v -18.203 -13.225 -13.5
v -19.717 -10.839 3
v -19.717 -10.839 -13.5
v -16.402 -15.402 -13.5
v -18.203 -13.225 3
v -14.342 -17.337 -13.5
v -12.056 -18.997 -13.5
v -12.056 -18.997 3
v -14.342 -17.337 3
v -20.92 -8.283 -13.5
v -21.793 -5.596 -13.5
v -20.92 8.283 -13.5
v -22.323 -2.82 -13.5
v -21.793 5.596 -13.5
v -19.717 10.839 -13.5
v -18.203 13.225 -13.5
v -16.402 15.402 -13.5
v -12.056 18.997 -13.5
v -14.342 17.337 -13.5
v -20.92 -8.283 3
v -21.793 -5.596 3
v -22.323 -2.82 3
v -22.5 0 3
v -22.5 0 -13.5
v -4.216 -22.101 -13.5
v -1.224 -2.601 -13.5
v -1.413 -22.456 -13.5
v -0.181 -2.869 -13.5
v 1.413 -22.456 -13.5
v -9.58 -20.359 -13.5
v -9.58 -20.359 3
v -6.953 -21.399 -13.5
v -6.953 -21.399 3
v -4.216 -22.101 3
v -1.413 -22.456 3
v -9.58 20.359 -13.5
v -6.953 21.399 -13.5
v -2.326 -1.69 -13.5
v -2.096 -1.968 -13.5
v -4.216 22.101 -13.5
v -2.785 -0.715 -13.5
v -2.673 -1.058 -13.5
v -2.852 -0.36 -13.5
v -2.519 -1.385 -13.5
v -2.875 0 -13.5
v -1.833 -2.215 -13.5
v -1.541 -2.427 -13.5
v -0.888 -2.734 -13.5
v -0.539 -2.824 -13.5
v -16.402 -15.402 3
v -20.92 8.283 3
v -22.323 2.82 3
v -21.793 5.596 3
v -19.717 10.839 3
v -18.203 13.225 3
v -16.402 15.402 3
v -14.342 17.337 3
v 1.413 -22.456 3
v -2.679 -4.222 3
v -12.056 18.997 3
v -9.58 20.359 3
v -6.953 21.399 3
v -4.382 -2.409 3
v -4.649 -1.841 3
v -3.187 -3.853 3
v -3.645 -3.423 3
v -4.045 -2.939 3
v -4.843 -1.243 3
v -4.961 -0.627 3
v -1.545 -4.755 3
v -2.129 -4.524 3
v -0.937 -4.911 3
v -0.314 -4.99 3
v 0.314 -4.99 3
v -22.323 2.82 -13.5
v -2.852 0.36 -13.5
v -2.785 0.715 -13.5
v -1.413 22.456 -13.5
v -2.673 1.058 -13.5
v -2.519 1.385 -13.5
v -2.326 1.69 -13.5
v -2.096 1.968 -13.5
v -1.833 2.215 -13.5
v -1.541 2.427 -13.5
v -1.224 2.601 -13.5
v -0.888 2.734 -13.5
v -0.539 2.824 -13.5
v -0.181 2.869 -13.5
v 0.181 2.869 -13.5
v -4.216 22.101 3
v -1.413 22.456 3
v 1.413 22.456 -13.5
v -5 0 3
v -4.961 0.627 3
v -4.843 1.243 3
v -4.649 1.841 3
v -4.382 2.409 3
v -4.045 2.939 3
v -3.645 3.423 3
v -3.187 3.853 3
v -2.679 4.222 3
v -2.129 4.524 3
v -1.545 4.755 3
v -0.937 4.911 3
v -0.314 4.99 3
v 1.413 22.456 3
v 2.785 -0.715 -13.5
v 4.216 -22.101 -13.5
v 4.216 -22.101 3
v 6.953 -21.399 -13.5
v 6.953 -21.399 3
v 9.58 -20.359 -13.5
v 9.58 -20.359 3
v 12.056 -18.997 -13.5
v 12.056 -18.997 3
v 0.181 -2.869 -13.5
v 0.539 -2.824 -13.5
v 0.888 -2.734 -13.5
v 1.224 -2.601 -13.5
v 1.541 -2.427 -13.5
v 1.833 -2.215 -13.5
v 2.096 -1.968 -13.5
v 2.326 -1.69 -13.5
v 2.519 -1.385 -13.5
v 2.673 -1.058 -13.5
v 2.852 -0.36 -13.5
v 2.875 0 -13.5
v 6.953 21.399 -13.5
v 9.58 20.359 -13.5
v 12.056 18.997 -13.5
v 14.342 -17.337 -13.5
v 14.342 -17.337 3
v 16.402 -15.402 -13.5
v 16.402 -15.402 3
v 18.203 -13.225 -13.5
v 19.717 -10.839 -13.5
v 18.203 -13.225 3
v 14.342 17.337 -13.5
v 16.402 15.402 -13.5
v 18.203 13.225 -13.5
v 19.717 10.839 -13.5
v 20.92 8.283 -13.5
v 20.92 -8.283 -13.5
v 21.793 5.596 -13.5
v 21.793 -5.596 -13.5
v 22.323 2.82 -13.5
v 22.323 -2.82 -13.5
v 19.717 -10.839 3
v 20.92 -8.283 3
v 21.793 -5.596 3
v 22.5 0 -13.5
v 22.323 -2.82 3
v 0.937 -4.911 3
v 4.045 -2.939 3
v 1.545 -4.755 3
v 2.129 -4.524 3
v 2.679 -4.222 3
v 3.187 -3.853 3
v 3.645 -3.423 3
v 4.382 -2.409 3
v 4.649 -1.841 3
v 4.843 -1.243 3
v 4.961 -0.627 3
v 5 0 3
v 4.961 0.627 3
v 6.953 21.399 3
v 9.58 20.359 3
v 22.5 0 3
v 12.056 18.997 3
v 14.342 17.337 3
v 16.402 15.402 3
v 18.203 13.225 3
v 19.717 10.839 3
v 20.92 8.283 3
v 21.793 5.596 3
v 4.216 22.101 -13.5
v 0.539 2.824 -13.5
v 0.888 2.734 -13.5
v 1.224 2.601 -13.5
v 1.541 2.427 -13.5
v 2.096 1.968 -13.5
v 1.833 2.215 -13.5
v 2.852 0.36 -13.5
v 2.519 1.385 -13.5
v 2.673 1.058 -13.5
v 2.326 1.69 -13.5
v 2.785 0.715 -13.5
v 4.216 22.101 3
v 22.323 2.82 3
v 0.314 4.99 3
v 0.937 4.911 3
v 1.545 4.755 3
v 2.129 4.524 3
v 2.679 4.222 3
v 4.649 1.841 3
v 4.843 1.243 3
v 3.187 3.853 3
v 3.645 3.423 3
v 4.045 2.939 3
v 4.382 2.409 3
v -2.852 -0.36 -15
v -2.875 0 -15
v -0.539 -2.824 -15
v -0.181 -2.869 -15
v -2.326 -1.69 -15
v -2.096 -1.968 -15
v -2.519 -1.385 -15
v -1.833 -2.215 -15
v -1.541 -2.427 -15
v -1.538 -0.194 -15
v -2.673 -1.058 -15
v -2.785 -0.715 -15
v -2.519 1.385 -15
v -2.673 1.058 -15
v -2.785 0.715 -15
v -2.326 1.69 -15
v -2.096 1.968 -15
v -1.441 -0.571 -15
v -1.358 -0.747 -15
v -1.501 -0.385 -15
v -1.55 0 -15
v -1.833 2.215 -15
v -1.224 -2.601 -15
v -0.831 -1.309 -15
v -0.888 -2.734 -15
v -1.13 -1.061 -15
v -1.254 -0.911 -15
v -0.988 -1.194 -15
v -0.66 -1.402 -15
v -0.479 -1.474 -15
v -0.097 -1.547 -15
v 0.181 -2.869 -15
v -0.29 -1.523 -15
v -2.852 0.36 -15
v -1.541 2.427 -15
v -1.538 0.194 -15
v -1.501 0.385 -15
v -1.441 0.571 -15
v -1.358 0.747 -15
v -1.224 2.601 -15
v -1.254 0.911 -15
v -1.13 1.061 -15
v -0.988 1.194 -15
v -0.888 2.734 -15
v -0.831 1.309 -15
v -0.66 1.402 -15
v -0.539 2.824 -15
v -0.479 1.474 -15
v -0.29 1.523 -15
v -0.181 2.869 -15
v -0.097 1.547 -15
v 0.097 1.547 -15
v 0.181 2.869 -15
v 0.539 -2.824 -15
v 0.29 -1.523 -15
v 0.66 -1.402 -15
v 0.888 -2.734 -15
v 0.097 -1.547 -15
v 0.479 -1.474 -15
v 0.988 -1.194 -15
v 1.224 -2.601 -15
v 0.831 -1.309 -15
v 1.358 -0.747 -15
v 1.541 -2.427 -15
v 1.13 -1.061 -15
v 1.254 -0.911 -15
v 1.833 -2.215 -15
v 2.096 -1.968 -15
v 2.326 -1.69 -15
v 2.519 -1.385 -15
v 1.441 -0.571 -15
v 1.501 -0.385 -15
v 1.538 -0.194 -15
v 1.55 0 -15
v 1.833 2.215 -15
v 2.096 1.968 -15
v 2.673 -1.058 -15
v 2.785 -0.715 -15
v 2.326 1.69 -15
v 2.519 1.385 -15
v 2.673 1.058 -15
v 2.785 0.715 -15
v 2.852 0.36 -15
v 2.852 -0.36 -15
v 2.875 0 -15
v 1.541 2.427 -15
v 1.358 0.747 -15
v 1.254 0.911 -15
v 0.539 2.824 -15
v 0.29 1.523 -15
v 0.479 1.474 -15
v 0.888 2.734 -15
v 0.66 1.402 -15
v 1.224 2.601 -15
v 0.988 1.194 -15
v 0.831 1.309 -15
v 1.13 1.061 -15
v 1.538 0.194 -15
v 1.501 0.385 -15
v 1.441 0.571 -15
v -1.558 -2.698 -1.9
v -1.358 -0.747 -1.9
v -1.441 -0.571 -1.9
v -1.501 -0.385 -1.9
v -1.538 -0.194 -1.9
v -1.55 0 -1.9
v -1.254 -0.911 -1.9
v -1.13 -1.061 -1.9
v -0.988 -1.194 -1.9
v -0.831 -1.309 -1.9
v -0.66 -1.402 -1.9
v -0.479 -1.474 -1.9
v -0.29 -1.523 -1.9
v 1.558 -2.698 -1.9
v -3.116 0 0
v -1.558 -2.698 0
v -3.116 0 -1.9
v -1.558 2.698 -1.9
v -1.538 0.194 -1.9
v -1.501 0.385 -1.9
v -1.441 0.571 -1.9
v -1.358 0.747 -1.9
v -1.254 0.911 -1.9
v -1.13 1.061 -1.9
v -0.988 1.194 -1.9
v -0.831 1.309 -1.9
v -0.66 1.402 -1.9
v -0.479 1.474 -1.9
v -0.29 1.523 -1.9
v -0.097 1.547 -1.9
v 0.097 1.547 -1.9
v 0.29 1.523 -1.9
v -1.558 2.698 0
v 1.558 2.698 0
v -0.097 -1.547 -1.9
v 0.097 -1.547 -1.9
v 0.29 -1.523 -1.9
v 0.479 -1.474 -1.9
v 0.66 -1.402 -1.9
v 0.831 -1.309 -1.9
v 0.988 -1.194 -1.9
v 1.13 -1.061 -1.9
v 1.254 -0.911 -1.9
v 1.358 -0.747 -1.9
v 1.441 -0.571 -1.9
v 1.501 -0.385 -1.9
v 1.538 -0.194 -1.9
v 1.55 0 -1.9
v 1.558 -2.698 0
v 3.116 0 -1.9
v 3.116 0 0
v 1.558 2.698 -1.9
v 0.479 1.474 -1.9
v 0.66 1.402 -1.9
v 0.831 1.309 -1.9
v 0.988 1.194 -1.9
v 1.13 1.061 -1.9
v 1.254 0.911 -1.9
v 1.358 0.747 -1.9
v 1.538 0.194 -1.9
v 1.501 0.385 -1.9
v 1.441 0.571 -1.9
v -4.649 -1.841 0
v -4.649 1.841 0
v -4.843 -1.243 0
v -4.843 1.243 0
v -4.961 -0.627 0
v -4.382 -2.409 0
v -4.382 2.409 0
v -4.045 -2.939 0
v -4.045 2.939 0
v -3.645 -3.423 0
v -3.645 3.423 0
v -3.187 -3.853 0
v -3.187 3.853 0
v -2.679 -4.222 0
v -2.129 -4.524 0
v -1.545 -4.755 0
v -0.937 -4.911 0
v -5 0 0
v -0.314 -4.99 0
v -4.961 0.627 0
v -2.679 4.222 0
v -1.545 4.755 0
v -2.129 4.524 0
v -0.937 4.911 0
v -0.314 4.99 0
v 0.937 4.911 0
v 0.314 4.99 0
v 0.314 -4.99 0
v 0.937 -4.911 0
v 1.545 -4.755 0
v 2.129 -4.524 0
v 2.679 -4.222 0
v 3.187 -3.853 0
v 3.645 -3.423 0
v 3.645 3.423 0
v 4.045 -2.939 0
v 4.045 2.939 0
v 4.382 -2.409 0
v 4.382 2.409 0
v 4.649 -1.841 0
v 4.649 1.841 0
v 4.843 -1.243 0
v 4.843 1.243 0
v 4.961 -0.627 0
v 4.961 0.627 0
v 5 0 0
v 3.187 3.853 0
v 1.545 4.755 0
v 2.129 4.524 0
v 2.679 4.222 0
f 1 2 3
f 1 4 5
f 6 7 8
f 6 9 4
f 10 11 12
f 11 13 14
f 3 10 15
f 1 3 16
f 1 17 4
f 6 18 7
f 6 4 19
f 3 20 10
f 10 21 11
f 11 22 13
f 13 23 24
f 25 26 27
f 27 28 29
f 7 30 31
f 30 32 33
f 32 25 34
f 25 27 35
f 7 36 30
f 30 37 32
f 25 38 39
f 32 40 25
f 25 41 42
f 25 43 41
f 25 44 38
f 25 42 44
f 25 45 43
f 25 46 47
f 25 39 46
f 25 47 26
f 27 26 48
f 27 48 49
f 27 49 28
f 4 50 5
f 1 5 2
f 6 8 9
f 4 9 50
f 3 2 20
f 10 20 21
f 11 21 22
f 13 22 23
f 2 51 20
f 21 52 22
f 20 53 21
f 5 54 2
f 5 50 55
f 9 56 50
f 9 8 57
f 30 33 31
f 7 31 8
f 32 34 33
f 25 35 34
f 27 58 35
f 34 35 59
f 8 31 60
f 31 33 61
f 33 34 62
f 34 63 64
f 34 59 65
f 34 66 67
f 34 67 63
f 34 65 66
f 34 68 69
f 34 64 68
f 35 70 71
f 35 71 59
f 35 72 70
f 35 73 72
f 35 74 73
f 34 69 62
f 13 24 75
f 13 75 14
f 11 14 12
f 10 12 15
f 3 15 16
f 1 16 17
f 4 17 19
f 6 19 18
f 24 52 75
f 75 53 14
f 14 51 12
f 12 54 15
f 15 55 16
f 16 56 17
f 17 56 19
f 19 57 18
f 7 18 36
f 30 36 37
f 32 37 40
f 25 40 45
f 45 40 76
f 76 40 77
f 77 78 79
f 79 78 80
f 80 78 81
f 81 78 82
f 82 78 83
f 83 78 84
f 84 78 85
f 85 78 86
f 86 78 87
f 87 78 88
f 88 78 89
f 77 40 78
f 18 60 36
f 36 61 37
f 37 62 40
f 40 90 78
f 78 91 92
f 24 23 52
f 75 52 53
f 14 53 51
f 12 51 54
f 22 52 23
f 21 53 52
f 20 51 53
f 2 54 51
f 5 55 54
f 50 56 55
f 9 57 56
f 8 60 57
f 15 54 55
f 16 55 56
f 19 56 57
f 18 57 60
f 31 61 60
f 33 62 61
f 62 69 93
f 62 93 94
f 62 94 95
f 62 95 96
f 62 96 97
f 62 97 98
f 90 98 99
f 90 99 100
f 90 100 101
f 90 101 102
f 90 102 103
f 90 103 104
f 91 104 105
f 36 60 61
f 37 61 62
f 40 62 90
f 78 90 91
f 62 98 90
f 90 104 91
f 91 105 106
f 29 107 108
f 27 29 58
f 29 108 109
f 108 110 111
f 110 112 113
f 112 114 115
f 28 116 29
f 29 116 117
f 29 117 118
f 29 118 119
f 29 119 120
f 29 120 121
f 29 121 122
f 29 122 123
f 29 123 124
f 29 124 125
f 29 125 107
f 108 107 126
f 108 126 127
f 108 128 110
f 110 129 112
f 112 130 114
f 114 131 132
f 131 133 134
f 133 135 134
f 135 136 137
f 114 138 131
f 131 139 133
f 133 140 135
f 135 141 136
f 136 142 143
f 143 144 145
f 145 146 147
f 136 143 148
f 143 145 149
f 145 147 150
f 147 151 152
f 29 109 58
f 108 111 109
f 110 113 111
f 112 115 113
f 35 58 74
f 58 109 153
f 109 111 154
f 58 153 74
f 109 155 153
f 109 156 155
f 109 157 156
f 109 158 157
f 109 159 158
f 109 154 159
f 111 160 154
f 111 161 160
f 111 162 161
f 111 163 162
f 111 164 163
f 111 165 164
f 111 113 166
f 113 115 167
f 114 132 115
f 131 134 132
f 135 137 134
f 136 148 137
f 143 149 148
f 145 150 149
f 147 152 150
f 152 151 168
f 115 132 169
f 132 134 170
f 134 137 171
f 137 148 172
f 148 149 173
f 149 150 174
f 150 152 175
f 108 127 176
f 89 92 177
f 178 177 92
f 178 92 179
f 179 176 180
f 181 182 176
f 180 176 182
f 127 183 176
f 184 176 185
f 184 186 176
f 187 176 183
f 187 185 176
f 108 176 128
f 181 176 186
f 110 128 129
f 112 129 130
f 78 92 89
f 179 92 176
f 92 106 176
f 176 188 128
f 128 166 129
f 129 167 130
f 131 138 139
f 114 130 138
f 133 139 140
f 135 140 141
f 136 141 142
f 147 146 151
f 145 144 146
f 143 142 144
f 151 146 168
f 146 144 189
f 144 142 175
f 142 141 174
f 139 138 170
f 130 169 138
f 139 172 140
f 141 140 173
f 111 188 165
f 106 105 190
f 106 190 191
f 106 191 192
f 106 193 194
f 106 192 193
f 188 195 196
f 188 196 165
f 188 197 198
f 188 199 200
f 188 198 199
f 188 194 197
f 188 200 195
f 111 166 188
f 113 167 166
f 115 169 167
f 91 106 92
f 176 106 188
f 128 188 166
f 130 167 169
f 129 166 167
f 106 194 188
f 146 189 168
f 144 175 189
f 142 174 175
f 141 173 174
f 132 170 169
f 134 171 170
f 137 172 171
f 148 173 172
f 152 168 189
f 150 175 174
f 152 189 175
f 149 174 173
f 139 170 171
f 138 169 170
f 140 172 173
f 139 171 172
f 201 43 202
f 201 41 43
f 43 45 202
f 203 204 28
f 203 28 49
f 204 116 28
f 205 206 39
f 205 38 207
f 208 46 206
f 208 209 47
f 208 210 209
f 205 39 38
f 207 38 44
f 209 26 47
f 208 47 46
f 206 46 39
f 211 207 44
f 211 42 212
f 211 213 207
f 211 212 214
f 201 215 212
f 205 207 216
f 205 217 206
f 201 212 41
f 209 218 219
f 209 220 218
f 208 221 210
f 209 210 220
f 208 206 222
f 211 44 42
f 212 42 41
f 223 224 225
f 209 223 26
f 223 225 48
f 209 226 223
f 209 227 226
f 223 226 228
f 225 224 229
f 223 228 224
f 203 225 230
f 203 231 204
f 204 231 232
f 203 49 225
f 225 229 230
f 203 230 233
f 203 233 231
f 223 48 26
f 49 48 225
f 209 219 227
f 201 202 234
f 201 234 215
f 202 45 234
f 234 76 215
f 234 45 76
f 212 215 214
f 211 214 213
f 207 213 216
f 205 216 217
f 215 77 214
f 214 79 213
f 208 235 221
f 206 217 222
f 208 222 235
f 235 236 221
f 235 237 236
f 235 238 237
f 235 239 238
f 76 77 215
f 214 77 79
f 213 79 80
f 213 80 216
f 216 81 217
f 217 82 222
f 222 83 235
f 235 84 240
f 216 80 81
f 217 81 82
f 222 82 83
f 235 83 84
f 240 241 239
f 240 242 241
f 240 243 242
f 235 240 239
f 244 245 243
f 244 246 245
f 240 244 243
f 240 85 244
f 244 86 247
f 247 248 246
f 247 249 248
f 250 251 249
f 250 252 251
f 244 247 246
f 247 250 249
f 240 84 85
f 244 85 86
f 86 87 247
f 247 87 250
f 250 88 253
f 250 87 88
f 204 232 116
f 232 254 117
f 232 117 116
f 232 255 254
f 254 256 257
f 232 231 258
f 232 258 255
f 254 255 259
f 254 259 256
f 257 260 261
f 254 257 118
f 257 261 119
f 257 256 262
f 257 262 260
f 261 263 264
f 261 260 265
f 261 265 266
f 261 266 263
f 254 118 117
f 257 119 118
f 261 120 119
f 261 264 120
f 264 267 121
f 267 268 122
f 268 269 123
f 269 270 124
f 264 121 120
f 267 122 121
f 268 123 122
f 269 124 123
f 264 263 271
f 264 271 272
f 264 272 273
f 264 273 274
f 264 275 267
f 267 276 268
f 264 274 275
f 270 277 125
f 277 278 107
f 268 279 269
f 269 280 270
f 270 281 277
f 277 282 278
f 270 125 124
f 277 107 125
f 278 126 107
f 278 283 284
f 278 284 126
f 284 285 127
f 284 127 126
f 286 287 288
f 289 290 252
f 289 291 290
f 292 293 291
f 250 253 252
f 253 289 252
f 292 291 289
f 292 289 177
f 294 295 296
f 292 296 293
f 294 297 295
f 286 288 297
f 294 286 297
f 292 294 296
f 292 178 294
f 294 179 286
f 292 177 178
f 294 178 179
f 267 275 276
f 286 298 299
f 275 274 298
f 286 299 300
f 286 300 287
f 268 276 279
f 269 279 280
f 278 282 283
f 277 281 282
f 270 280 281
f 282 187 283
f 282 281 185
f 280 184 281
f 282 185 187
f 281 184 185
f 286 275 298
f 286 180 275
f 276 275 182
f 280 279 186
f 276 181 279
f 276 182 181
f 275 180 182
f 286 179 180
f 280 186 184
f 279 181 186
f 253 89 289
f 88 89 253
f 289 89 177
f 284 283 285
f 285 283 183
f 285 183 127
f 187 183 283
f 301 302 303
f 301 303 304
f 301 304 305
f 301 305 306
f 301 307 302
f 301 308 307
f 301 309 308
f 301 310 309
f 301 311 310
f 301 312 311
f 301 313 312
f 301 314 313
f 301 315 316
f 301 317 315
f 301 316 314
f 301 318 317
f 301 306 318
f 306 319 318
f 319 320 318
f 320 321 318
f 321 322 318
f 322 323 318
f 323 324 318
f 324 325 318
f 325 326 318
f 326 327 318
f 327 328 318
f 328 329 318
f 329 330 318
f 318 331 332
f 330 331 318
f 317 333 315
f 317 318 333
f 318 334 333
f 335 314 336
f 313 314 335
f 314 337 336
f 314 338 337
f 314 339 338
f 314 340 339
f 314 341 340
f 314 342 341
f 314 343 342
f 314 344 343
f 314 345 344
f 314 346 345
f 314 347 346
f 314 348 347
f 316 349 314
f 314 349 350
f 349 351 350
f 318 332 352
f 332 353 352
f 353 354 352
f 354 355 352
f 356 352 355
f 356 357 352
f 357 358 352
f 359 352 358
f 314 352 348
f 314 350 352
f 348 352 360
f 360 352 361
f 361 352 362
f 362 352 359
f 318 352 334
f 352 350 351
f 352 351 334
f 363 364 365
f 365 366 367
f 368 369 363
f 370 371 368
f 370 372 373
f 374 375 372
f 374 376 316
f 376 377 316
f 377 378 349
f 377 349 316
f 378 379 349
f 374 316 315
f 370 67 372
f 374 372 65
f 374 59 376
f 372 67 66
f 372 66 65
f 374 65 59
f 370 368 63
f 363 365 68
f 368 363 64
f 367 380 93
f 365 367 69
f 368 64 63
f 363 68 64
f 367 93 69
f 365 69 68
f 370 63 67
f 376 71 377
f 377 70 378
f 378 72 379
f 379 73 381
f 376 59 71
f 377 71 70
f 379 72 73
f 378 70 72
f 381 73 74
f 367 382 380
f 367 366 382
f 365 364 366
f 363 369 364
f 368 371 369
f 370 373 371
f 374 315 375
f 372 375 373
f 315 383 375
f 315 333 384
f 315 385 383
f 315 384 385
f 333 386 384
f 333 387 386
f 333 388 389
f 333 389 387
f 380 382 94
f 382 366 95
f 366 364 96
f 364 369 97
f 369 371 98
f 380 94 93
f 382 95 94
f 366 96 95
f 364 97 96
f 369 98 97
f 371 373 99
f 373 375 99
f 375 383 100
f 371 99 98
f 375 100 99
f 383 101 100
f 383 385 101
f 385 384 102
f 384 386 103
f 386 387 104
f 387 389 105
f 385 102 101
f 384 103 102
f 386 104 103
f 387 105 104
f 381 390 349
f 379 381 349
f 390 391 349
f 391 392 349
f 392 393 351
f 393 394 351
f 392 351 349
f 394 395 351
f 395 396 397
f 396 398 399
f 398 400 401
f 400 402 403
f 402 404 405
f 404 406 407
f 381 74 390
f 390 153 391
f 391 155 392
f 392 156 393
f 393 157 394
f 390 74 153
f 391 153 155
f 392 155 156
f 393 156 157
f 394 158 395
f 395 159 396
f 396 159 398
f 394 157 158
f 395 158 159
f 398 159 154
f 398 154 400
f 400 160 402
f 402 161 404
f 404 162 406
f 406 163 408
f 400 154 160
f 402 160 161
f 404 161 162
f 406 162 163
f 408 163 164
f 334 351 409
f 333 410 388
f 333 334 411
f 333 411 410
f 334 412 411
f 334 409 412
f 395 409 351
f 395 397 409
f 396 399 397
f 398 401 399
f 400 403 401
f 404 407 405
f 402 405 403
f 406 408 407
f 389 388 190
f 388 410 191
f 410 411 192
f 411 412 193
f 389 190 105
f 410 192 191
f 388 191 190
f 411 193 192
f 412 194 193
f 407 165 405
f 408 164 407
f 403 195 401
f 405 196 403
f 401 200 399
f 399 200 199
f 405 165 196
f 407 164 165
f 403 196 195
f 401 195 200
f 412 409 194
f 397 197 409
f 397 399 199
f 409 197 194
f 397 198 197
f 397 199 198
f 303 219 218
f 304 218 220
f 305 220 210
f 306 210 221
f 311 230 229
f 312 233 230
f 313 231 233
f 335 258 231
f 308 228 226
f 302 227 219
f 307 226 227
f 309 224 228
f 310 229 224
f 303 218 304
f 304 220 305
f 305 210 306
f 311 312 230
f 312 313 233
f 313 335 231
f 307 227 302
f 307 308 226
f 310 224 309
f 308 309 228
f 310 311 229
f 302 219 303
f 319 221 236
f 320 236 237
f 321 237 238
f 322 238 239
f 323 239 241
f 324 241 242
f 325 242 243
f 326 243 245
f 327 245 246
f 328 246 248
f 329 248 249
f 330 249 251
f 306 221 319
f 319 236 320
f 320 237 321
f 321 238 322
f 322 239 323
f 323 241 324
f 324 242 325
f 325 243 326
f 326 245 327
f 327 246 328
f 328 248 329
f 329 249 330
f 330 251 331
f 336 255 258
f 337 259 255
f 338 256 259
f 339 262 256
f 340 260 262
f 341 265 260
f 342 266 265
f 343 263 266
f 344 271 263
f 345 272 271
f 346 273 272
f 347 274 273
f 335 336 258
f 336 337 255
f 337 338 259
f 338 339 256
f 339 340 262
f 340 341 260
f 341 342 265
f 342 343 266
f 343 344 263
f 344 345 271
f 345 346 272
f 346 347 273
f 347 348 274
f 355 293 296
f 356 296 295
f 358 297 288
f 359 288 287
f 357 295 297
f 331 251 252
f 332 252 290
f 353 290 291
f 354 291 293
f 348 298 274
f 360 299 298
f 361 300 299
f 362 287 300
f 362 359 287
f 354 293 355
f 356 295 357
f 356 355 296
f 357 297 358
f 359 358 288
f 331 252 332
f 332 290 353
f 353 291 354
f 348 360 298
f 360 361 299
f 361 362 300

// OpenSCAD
$fn = 50;

difference() {
	union() {
		translate(v = [0, 0, -13.5]) {
			cylinder(h = 16.5, r = 22.5);
		}
		#translate(v = [0, 0, -15.0]) {
			cylinder(h = 15, r = 2.875);
		}
	}
	union() {
		translate(v = [0, 0, 0]) {
			rotate(a = [0, 0, 0]) {
				difference() {
					union() {
						translate(v = [0, 0, -1.9]) {
							linear_extrude(height = 1.9) {
								polygon(points = [[3.1158, 0.0], [1.5579000000000005, 2.698361953111554], [-1.5578999999999994, 2.6983619531115544], [-3.1158, 3.815754496783323e-16], [-1.5579000000000014, -2.6983619531115535], [1.557899999999998, -2.6983619531115552]]);
							}
						}
					}
					union();
				}
			}
		}
		#cylinder(h = 3, r = 5.0);
		#translate(v = [0, 0, -100.0]) {
			cylinder(h = 200, r = 1.55);
		}
	}
}
